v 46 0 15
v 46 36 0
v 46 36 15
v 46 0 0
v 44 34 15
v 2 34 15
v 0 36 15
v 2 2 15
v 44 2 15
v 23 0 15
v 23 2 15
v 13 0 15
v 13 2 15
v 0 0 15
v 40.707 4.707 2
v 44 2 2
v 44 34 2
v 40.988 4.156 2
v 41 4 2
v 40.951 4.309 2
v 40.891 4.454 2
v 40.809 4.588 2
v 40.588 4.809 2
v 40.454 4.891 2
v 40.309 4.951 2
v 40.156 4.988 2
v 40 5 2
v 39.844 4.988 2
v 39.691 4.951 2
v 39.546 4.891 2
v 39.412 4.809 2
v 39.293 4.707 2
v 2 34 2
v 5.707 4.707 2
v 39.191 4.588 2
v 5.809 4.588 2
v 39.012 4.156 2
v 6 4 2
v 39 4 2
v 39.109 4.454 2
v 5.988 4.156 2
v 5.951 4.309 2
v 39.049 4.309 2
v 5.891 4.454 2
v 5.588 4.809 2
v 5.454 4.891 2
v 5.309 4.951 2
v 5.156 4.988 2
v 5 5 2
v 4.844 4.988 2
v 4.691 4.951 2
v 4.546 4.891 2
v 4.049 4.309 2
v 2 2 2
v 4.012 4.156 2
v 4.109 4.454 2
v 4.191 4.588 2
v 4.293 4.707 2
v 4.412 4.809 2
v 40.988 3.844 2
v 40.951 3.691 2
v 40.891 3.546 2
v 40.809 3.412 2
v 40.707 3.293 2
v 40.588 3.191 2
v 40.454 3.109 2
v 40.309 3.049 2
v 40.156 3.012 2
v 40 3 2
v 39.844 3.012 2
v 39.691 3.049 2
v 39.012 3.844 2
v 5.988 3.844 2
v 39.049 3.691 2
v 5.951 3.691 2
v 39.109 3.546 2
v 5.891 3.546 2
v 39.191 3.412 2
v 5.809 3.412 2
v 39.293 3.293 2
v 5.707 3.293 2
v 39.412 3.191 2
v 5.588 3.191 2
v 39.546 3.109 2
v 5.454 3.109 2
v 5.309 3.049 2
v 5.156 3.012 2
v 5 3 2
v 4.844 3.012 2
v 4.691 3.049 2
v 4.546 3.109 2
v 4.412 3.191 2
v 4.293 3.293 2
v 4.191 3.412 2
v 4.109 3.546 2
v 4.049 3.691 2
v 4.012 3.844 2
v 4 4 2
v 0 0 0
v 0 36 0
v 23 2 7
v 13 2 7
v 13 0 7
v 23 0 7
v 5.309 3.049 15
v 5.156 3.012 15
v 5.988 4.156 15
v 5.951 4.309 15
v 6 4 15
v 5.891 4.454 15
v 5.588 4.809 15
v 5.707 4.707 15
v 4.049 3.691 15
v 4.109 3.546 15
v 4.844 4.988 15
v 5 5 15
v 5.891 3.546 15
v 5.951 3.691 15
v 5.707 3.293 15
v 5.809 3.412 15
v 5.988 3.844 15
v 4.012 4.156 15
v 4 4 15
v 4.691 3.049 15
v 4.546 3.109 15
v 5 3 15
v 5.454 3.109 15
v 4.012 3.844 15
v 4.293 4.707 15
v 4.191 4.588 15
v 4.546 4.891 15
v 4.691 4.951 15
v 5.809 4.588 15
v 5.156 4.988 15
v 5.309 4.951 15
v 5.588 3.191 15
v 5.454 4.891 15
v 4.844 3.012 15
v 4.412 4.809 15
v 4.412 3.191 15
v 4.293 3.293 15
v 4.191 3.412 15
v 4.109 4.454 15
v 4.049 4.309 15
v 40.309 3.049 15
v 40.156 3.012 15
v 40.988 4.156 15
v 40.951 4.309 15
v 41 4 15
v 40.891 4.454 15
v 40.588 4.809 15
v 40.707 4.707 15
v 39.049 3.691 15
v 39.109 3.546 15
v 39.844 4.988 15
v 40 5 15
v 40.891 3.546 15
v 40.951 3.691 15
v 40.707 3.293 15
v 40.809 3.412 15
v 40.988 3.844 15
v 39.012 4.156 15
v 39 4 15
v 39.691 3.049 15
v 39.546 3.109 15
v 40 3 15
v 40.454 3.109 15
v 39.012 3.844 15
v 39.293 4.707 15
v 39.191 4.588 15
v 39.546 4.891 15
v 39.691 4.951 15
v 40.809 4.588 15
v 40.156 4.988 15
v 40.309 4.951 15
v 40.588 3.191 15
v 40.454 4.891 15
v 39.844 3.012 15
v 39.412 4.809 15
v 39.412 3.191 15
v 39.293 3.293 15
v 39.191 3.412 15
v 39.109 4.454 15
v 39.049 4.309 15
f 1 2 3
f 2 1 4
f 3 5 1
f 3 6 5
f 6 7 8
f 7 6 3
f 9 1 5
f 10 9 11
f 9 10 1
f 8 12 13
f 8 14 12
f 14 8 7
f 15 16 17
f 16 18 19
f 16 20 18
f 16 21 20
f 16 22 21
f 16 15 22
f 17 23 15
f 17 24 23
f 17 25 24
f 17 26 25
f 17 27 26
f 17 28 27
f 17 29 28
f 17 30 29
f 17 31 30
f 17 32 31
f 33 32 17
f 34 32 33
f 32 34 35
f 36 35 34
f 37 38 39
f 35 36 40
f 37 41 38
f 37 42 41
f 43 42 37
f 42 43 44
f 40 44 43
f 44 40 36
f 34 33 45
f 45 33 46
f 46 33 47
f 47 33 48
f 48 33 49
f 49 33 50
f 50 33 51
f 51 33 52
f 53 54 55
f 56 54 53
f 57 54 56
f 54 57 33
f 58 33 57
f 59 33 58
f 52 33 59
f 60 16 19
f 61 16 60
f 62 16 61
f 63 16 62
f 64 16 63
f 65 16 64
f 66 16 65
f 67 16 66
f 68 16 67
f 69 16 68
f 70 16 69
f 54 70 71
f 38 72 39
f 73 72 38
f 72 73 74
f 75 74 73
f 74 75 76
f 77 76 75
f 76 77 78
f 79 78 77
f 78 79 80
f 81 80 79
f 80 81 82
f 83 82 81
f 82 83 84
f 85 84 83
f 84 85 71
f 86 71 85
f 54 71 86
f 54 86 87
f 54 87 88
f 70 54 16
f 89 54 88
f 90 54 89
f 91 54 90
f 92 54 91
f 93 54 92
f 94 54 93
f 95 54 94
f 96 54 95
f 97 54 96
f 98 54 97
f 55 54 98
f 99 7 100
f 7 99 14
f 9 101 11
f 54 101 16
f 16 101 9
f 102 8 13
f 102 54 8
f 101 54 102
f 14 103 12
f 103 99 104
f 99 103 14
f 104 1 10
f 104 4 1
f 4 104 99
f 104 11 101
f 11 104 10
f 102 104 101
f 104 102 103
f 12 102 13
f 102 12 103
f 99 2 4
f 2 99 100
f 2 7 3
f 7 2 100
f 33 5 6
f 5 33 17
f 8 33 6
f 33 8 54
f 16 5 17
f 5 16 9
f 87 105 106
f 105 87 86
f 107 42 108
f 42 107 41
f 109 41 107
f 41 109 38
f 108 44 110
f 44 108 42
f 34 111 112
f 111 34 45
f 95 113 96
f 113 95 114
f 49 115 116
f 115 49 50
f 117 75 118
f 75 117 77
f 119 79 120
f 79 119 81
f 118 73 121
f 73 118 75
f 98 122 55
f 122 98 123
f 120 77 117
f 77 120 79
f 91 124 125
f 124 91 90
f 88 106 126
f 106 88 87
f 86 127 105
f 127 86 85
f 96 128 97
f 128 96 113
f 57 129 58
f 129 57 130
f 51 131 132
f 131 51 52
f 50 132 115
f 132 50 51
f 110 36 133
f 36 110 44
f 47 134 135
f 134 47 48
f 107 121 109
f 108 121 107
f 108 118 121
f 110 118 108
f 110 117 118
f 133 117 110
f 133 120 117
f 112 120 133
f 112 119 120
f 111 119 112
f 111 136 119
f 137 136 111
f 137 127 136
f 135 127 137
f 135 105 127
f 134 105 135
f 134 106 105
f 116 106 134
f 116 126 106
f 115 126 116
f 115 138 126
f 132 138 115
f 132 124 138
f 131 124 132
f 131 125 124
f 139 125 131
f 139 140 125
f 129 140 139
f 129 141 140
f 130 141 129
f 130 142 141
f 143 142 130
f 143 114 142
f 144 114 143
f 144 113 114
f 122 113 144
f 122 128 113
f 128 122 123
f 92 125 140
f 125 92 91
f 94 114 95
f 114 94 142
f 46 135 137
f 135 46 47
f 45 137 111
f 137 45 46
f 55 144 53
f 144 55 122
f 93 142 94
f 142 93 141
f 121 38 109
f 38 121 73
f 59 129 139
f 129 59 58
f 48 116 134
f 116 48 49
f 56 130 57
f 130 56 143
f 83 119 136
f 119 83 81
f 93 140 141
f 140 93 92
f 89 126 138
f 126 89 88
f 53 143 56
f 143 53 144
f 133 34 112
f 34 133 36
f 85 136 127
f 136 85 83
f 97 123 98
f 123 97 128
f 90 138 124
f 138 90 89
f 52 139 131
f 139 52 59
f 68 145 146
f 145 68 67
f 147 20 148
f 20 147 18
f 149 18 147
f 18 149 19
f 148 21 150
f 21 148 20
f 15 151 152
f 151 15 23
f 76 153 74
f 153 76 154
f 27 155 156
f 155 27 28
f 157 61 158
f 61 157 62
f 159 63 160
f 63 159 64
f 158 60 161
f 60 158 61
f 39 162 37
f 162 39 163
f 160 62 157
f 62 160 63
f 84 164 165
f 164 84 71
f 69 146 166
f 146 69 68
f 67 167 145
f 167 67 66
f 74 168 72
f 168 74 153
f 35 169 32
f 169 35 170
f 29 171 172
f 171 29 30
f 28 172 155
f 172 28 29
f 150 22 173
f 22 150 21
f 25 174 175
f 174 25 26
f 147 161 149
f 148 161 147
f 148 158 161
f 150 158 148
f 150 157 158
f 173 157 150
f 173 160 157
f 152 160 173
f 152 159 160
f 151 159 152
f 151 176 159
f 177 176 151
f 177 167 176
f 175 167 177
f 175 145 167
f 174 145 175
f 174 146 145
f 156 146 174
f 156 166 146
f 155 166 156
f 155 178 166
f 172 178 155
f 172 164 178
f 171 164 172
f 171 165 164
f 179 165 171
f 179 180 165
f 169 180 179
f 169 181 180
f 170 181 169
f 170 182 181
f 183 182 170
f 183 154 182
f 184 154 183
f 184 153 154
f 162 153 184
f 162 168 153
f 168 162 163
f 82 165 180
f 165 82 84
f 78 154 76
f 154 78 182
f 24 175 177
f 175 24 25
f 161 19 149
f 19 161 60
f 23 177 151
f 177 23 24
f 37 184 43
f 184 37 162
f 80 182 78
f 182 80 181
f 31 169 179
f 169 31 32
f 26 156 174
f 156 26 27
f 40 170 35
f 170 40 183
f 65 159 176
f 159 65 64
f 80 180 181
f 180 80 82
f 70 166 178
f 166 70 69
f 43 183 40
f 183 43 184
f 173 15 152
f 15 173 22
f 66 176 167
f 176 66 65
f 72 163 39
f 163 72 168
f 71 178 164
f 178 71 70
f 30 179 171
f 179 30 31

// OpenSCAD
// ==============================
// Global parameters
// ==============================

// Wall / floor thickness
wall_depth     = 2;    // Thickness of walls
floor_depth    = 2;    // Thickness of floor plate
wall_height    = 13;   // Height of all vertical walls

// Inner usable dimensions
inner_width    = 42;
inner_height   = 32;

// Computed outer dimensions
floor_width    = inner_width  + 2 * wall_depth;
floor_height   = inner_height + 2 * wall_depth;

// Hole parameters
hole_r         = 1;    // Radius of small mounting holes
hole_fn        = 40;   // Cylinder resolution

// ==============================
// Floor plate
// ==============================

cube([floor_width, floor_height, floor_depth]);

// ==============================
// Front wall with vertical cutout
// ==============================

front_wall_cutout_x        = 13;   // X offset of cutout
front_wall_cutout_width   = 10;   // Width of cutout
front_wall_cutout_z_start = 5;    // Bottom offset of cutout

translate([0, 0, floor_depth])
difference() {

    // Full front wall
    cube([floor_width, wall_depth, wall_height]);

    // Vertical opening in front wall
    translate([front_wall_cutout_x, 0, front_wall_cutout_z_start])
        cube([
            front_wall_cutout_width,
            wall_depth,
            floor_height + wall_height - front_wall_cutout_z_start
        ]);
}

// ==============================
// Back wall
// ==============================

translate([0, floor_height - wall_depth, floor_depth])
    cube([floor_width, wall_depth, wall_height]);

// ==============================
// Left wall
// ==============================

translate([0, wall_depth, floor_depth])
    cube([
        wall_depth,
        floor_height - 2 * wall_depth,
        wall_height
    ]);

// ==============================
// Right wall
// ==============================

translate([floor_width - wall_depth, wall_depth, floor_depth])
    cube([
        wall_depth,
        floor_height - 2 * wall_depth,
        wall_height
    ]);

// ==============================
// Bottom mounting holes
// ==============================

// Vertical offset from inner wall
hole_y_offset = wall_depth + 1 + hole_r;

// Left hole positioning
left_hole_x_offset = wall_depth + 2 + hole_r;

// Right hole positioning
right_hole_x_offset = floor_width - wall_depth - 3 - hole_r;

// Bottom-left hole
translate([left_hole_x_offset, hole_y_offset, floor_depth])
    color("green")
    cylinder(h=wall_height, r=hole_r, $fn=hole_fn);

// Bottom-right hole
translate([right_hole_x_offset, hole_y_offset, floor_depth])
    color("white")
    cylinder(h=wall_height, r=hole_r, $fn=hole_fn);
